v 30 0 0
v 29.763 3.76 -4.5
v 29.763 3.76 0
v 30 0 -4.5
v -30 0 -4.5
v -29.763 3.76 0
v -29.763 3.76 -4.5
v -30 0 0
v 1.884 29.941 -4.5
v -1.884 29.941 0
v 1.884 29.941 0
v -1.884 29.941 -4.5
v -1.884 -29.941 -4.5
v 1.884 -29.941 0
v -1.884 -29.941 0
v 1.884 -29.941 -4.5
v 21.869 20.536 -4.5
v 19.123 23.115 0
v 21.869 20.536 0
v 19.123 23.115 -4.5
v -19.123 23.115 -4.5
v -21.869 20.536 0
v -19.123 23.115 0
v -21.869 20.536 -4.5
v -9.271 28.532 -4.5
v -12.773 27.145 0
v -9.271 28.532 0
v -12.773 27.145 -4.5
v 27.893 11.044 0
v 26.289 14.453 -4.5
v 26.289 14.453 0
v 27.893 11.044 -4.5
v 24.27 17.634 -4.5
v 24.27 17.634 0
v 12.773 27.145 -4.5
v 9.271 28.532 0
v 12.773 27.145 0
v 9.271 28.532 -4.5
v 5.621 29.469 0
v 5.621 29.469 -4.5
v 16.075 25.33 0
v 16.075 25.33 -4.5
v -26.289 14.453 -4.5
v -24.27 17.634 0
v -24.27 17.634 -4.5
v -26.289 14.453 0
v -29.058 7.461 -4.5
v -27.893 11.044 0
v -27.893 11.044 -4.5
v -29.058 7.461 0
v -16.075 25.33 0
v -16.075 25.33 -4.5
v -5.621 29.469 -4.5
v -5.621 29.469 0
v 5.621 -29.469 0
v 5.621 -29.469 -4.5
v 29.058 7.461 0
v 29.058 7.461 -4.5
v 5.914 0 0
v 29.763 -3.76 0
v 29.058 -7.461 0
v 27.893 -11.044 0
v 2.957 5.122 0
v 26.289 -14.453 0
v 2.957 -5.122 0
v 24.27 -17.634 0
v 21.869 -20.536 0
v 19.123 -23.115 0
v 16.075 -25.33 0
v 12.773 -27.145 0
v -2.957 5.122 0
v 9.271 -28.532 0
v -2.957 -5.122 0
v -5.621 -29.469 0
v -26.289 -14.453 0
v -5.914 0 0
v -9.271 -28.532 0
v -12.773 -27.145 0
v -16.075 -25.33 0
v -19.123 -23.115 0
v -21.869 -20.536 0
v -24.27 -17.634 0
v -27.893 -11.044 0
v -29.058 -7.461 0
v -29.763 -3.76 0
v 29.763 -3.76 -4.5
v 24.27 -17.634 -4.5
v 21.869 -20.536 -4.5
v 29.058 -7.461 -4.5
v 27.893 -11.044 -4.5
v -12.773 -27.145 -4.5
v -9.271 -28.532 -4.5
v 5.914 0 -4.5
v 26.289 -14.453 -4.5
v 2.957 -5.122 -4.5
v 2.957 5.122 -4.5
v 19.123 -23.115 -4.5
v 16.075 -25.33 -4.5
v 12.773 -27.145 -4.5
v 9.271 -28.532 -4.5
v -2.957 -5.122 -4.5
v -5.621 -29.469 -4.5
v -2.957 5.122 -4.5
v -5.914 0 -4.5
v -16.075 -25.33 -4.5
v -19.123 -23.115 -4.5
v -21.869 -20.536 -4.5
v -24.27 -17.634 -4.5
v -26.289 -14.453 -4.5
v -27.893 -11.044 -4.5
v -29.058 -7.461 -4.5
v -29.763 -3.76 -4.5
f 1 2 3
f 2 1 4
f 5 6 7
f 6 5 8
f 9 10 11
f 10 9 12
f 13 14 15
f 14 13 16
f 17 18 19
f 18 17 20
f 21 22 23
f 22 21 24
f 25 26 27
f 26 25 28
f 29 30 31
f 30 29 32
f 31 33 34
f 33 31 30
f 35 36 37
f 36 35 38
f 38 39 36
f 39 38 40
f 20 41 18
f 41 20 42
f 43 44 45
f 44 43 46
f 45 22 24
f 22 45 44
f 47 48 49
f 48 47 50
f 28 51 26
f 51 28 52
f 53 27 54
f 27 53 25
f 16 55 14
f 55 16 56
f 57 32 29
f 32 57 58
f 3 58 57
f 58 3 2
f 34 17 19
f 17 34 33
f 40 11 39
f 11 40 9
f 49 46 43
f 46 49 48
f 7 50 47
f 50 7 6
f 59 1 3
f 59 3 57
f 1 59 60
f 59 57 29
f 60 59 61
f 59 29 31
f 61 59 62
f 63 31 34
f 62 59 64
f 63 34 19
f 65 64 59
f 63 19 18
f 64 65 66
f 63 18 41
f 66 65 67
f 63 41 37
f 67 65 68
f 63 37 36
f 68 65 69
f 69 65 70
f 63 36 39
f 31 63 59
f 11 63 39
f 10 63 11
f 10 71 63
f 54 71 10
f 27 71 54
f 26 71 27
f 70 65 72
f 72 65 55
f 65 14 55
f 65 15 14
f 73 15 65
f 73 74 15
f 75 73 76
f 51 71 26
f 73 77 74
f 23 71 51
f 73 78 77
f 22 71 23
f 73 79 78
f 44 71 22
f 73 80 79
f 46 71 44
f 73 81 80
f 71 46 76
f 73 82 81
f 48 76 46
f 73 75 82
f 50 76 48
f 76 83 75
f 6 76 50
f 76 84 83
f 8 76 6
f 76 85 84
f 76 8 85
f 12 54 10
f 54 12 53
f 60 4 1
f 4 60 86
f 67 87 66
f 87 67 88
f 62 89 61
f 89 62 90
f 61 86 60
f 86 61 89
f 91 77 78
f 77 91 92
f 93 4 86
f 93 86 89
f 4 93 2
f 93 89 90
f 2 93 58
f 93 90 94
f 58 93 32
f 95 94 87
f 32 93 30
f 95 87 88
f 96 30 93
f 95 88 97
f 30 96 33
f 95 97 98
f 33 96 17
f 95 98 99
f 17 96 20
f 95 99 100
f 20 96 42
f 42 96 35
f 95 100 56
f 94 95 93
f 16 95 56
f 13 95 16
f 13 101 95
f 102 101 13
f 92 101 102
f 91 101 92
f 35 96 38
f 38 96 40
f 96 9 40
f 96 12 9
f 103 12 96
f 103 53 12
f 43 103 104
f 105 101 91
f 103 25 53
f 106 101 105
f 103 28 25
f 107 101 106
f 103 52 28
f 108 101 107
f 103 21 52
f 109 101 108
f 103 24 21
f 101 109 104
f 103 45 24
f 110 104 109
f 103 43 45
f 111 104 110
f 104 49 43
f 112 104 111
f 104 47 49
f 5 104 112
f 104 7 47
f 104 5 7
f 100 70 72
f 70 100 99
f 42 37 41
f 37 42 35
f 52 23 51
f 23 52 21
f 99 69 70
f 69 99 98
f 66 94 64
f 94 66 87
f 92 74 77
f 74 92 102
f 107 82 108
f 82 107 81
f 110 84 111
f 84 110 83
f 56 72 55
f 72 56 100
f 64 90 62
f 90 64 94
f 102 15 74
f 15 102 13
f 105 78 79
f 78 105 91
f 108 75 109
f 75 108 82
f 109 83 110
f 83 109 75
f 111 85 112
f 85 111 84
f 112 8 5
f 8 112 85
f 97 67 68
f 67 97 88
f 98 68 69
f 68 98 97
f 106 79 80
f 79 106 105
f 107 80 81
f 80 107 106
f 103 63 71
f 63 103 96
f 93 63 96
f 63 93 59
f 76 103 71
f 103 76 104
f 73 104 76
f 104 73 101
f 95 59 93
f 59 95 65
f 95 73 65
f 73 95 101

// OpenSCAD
$fn = 50;


difference() {
	union() {
		translate(v = [0, 0, -4.5000000000]) {
			cylinder(h = 4.5000000000, r = 30.0000000000);
		}
		translate(v = [0, 0, -3.0000000000]) {
			cylinder(h = 3, r = 2.8750000000);
		}
	}
	union() {
		translate(v = [0, 0, 0]) {
			rotate(a = [0, 0, 0]) {
				difference() {
					union() {
						translate(v = [0, 0, -5]) {
							linear_extrude(height = 5) {
								polygon(points = [[5.9142500000, 0.0000000000], [2.9571250000, 5.1218907443], [-2.9571250000, 5.1218907443], [-5.9142500000, 0.0000000000], [-2.9571250000, -5.1218907443], [2.9571250000, -5.1218907443]]);
							}
						}
					}
					union();
				}
			}
		}
		#translate(v = [0, 0, -100.0000000000]) {
			cylinder(h = 200, r = 3.2500000000);
		}
	}
}
